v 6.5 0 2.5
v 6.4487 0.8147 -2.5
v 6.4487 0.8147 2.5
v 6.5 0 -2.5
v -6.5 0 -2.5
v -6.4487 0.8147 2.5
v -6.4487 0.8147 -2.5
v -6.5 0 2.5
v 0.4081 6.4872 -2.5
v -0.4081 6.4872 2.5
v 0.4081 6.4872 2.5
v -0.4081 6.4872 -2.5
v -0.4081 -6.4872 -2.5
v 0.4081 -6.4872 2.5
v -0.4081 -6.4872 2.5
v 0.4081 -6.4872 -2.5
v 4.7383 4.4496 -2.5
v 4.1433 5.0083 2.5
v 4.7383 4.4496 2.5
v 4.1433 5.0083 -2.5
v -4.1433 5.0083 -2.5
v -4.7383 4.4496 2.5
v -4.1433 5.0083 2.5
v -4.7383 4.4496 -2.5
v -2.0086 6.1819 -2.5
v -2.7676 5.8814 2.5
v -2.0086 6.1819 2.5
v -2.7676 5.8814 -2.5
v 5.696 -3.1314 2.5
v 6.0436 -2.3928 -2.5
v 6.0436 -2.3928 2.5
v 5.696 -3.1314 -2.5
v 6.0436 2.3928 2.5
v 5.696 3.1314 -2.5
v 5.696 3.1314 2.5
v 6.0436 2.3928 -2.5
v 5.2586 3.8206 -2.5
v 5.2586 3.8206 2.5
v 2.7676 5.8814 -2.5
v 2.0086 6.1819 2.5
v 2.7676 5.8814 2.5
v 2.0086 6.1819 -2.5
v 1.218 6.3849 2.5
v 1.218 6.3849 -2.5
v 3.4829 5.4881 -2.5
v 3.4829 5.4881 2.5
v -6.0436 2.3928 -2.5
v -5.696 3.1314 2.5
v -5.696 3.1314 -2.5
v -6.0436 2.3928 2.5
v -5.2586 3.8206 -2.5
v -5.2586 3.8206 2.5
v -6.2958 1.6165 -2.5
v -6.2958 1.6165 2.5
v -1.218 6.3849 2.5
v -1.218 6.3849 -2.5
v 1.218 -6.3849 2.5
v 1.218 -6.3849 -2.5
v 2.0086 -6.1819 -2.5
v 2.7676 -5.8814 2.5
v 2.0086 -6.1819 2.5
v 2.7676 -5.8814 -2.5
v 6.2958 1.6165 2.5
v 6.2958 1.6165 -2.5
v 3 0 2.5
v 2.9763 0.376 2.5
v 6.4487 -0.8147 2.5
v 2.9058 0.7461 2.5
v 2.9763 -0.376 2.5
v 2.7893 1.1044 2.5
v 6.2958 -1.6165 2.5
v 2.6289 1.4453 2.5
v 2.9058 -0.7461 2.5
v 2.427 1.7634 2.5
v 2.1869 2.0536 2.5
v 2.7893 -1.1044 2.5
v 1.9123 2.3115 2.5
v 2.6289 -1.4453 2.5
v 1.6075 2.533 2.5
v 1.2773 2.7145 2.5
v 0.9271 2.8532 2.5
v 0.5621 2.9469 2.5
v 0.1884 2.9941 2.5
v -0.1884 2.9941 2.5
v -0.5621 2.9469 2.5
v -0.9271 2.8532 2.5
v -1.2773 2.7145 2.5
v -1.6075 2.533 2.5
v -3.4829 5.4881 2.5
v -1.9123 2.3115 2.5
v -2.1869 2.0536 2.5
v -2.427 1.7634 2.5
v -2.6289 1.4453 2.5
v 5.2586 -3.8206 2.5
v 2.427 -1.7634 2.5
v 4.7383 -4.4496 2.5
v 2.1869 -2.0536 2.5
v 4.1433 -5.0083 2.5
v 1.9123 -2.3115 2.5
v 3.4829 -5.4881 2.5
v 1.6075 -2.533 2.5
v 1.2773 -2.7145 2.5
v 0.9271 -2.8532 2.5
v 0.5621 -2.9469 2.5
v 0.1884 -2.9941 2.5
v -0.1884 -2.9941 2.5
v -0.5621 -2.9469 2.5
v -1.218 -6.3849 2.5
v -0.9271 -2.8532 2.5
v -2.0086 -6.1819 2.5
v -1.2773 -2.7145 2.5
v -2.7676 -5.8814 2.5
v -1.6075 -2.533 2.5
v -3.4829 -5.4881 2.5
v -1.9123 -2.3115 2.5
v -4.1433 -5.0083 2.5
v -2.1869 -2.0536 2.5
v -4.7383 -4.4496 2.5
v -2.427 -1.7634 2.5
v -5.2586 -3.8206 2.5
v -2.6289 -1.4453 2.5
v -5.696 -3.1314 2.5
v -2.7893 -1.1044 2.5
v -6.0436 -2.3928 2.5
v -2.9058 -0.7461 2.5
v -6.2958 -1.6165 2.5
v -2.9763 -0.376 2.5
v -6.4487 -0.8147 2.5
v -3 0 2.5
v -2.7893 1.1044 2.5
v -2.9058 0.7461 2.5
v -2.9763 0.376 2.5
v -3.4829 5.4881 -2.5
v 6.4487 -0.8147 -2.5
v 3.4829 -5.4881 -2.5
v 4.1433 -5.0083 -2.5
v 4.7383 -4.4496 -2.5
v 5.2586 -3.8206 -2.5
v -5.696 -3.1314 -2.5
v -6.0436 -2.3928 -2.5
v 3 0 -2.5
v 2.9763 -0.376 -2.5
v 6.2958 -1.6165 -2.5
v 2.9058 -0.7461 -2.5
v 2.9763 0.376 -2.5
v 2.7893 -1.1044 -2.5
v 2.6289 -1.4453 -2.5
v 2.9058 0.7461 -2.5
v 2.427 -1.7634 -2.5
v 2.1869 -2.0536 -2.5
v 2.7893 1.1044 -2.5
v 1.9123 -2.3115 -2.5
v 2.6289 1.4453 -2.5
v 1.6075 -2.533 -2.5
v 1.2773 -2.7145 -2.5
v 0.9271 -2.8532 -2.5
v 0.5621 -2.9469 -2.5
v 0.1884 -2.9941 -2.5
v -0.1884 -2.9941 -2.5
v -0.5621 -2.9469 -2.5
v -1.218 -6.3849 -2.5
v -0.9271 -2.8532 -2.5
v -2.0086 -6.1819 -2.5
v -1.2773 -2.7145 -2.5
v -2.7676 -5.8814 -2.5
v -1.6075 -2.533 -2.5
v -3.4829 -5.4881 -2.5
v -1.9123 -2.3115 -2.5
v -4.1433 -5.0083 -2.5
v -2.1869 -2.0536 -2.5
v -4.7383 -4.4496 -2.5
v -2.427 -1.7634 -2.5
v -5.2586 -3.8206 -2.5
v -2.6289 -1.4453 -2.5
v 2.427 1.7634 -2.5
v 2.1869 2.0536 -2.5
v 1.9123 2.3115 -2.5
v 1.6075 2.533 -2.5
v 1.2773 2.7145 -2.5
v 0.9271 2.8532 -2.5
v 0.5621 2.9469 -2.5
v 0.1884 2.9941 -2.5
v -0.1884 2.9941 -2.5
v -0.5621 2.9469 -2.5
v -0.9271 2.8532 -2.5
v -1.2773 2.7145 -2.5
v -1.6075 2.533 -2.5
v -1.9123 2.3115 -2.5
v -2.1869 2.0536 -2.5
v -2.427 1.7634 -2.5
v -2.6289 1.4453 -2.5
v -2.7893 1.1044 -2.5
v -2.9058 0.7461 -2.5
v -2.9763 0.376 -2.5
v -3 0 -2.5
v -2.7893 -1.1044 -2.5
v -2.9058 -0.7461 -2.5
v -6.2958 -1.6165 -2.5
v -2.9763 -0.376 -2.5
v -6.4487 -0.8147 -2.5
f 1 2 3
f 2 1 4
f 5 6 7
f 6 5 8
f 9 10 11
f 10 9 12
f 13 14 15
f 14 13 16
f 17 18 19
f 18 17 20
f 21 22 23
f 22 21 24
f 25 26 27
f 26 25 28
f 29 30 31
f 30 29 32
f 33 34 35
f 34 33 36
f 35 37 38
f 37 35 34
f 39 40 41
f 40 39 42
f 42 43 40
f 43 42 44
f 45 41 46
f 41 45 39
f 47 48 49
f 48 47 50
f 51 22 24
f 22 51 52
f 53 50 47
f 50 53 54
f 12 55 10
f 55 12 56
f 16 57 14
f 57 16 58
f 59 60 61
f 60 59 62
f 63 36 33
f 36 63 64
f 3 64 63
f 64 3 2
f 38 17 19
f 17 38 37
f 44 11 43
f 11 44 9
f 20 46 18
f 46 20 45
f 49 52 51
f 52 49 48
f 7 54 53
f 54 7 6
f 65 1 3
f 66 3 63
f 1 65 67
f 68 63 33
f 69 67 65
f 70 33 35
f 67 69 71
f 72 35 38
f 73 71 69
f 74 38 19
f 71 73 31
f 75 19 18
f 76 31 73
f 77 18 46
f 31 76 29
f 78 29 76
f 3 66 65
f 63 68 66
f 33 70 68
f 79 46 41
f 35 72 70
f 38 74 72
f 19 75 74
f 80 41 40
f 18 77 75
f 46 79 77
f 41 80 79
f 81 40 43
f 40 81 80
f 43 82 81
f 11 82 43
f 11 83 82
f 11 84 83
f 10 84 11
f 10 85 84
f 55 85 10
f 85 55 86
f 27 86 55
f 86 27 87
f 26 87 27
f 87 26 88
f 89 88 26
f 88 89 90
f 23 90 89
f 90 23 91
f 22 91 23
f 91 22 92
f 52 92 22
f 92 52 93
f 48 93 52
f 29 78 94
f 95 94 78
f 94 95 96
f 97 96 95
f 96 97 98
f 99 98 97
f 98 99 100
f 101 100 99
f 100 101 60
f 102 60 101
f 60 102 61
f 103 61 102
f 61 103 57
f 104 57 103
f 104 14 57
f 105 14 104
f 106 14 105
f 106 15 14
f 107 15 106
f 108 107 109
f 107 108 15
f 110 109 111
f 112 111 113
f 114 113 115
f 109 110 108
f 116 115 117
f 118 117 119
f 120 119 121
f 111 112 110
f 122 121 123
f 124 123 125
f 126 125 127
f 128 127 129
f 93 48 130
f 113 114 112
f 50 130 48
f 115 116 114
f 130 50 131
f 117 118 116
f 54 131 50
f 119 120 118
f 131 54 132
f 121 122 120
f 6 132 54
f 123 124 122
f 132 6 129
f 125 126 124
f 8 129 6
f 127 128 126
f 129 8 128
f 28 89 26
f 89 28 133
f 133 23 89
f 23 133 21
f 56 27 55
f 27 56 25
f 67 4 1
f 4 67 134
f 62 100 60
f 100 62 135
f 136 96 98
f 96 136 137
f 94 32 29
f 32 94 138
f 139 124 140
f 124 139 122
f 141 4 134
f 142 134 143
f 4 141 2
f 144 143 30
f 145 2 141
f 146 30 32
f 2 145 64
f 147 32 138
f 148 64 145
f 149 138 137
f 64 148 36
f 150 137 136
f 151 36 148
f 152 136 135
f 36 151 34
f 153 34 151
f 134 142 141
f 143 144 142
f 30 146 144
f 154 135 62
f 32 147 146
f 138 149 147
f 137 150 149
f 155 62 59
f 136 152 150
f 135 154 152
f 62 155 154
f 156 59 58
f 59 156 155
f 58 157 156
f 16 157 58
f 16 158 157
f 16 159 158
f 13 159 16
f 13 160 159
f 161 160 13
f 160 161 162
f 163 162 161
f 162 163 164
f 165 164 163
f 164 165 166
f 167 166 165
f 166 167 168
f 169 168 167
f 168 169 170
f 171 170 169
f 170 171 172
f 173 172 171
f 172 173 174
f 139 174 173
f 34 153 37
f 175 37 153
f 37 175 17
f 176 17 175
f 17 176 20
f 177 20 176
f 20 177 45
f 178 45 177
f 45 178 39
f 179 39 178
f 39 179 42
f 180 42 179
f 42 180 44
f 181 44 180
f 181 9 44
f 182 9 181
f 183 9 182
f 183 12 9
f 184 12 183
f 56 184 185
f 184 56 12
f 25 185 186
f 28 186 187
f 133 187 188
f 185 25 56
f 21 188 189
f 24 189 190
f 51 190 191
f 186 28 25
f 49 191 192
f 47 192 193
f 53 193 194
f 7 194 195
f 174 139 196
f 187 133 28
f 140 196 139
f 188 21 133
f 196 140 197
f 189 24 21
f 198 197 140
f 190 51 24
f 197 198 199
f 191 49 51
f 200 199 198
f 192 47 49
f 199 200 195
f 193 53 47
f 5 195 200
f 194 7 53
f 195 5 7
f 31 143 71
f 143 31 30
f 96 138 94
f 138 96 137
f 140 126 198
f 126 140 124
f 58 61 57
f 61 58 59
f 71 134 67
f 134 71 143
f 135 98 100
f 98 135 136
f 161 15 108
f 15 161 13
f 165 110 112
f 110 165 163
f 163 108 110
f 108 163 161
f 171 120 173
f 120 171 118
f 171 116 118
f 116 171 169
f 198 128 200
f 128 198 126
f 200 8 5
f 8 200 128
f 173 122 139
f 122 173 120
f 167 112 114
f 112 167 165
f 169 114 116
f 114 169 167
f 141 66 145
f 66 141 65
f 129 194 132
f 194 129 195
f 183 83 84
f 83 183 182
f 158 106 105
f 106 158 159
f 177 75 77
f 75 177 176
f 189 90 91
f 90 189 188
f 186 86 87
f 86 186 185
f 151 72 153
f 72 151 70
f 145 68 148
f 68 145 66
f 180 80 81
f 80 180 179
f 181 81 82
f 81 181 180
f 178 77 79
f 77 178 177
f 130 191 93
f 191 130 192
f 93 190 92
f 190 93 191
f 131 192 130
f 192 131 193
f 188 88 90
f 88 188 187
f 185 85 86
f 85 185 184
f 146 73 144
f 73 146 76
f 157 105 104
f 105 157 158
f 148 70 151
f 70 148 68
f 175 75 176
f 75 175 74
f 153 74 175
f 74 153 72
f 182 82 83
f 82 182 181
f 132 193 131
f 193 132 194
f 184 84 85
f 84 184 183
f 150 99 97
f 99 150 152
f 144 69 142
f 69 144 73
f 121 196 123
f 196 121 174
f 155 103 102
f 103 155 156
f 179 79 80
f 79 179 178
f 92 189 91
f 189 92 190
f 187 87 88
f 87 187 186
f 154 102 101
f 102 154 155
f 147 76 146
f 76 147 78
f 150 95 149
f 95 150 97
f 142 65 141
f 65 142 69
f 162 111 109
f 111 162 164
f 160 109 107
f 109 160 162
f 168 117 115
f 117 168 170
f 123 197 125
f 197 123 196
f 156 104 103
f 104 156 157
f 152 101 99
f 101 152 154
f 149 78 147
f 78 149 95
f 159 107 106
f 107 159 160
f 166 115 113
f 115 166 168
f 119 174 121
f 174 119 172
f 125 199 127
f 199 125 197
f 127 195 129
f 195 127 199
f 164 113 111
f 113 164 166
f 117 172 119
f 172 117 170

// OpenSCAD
$fn = 50;


difference() {
	union() {
		translate(v = [0, 0, -2.5000000000]) {
			cylinder(h = 5, r = 6.5000000000);
		}
	}
	union() {
		translate(v = [0, 0, -100.0000000000]) {
			cylinder(h = 200, r = 3);
		}
	}
}
